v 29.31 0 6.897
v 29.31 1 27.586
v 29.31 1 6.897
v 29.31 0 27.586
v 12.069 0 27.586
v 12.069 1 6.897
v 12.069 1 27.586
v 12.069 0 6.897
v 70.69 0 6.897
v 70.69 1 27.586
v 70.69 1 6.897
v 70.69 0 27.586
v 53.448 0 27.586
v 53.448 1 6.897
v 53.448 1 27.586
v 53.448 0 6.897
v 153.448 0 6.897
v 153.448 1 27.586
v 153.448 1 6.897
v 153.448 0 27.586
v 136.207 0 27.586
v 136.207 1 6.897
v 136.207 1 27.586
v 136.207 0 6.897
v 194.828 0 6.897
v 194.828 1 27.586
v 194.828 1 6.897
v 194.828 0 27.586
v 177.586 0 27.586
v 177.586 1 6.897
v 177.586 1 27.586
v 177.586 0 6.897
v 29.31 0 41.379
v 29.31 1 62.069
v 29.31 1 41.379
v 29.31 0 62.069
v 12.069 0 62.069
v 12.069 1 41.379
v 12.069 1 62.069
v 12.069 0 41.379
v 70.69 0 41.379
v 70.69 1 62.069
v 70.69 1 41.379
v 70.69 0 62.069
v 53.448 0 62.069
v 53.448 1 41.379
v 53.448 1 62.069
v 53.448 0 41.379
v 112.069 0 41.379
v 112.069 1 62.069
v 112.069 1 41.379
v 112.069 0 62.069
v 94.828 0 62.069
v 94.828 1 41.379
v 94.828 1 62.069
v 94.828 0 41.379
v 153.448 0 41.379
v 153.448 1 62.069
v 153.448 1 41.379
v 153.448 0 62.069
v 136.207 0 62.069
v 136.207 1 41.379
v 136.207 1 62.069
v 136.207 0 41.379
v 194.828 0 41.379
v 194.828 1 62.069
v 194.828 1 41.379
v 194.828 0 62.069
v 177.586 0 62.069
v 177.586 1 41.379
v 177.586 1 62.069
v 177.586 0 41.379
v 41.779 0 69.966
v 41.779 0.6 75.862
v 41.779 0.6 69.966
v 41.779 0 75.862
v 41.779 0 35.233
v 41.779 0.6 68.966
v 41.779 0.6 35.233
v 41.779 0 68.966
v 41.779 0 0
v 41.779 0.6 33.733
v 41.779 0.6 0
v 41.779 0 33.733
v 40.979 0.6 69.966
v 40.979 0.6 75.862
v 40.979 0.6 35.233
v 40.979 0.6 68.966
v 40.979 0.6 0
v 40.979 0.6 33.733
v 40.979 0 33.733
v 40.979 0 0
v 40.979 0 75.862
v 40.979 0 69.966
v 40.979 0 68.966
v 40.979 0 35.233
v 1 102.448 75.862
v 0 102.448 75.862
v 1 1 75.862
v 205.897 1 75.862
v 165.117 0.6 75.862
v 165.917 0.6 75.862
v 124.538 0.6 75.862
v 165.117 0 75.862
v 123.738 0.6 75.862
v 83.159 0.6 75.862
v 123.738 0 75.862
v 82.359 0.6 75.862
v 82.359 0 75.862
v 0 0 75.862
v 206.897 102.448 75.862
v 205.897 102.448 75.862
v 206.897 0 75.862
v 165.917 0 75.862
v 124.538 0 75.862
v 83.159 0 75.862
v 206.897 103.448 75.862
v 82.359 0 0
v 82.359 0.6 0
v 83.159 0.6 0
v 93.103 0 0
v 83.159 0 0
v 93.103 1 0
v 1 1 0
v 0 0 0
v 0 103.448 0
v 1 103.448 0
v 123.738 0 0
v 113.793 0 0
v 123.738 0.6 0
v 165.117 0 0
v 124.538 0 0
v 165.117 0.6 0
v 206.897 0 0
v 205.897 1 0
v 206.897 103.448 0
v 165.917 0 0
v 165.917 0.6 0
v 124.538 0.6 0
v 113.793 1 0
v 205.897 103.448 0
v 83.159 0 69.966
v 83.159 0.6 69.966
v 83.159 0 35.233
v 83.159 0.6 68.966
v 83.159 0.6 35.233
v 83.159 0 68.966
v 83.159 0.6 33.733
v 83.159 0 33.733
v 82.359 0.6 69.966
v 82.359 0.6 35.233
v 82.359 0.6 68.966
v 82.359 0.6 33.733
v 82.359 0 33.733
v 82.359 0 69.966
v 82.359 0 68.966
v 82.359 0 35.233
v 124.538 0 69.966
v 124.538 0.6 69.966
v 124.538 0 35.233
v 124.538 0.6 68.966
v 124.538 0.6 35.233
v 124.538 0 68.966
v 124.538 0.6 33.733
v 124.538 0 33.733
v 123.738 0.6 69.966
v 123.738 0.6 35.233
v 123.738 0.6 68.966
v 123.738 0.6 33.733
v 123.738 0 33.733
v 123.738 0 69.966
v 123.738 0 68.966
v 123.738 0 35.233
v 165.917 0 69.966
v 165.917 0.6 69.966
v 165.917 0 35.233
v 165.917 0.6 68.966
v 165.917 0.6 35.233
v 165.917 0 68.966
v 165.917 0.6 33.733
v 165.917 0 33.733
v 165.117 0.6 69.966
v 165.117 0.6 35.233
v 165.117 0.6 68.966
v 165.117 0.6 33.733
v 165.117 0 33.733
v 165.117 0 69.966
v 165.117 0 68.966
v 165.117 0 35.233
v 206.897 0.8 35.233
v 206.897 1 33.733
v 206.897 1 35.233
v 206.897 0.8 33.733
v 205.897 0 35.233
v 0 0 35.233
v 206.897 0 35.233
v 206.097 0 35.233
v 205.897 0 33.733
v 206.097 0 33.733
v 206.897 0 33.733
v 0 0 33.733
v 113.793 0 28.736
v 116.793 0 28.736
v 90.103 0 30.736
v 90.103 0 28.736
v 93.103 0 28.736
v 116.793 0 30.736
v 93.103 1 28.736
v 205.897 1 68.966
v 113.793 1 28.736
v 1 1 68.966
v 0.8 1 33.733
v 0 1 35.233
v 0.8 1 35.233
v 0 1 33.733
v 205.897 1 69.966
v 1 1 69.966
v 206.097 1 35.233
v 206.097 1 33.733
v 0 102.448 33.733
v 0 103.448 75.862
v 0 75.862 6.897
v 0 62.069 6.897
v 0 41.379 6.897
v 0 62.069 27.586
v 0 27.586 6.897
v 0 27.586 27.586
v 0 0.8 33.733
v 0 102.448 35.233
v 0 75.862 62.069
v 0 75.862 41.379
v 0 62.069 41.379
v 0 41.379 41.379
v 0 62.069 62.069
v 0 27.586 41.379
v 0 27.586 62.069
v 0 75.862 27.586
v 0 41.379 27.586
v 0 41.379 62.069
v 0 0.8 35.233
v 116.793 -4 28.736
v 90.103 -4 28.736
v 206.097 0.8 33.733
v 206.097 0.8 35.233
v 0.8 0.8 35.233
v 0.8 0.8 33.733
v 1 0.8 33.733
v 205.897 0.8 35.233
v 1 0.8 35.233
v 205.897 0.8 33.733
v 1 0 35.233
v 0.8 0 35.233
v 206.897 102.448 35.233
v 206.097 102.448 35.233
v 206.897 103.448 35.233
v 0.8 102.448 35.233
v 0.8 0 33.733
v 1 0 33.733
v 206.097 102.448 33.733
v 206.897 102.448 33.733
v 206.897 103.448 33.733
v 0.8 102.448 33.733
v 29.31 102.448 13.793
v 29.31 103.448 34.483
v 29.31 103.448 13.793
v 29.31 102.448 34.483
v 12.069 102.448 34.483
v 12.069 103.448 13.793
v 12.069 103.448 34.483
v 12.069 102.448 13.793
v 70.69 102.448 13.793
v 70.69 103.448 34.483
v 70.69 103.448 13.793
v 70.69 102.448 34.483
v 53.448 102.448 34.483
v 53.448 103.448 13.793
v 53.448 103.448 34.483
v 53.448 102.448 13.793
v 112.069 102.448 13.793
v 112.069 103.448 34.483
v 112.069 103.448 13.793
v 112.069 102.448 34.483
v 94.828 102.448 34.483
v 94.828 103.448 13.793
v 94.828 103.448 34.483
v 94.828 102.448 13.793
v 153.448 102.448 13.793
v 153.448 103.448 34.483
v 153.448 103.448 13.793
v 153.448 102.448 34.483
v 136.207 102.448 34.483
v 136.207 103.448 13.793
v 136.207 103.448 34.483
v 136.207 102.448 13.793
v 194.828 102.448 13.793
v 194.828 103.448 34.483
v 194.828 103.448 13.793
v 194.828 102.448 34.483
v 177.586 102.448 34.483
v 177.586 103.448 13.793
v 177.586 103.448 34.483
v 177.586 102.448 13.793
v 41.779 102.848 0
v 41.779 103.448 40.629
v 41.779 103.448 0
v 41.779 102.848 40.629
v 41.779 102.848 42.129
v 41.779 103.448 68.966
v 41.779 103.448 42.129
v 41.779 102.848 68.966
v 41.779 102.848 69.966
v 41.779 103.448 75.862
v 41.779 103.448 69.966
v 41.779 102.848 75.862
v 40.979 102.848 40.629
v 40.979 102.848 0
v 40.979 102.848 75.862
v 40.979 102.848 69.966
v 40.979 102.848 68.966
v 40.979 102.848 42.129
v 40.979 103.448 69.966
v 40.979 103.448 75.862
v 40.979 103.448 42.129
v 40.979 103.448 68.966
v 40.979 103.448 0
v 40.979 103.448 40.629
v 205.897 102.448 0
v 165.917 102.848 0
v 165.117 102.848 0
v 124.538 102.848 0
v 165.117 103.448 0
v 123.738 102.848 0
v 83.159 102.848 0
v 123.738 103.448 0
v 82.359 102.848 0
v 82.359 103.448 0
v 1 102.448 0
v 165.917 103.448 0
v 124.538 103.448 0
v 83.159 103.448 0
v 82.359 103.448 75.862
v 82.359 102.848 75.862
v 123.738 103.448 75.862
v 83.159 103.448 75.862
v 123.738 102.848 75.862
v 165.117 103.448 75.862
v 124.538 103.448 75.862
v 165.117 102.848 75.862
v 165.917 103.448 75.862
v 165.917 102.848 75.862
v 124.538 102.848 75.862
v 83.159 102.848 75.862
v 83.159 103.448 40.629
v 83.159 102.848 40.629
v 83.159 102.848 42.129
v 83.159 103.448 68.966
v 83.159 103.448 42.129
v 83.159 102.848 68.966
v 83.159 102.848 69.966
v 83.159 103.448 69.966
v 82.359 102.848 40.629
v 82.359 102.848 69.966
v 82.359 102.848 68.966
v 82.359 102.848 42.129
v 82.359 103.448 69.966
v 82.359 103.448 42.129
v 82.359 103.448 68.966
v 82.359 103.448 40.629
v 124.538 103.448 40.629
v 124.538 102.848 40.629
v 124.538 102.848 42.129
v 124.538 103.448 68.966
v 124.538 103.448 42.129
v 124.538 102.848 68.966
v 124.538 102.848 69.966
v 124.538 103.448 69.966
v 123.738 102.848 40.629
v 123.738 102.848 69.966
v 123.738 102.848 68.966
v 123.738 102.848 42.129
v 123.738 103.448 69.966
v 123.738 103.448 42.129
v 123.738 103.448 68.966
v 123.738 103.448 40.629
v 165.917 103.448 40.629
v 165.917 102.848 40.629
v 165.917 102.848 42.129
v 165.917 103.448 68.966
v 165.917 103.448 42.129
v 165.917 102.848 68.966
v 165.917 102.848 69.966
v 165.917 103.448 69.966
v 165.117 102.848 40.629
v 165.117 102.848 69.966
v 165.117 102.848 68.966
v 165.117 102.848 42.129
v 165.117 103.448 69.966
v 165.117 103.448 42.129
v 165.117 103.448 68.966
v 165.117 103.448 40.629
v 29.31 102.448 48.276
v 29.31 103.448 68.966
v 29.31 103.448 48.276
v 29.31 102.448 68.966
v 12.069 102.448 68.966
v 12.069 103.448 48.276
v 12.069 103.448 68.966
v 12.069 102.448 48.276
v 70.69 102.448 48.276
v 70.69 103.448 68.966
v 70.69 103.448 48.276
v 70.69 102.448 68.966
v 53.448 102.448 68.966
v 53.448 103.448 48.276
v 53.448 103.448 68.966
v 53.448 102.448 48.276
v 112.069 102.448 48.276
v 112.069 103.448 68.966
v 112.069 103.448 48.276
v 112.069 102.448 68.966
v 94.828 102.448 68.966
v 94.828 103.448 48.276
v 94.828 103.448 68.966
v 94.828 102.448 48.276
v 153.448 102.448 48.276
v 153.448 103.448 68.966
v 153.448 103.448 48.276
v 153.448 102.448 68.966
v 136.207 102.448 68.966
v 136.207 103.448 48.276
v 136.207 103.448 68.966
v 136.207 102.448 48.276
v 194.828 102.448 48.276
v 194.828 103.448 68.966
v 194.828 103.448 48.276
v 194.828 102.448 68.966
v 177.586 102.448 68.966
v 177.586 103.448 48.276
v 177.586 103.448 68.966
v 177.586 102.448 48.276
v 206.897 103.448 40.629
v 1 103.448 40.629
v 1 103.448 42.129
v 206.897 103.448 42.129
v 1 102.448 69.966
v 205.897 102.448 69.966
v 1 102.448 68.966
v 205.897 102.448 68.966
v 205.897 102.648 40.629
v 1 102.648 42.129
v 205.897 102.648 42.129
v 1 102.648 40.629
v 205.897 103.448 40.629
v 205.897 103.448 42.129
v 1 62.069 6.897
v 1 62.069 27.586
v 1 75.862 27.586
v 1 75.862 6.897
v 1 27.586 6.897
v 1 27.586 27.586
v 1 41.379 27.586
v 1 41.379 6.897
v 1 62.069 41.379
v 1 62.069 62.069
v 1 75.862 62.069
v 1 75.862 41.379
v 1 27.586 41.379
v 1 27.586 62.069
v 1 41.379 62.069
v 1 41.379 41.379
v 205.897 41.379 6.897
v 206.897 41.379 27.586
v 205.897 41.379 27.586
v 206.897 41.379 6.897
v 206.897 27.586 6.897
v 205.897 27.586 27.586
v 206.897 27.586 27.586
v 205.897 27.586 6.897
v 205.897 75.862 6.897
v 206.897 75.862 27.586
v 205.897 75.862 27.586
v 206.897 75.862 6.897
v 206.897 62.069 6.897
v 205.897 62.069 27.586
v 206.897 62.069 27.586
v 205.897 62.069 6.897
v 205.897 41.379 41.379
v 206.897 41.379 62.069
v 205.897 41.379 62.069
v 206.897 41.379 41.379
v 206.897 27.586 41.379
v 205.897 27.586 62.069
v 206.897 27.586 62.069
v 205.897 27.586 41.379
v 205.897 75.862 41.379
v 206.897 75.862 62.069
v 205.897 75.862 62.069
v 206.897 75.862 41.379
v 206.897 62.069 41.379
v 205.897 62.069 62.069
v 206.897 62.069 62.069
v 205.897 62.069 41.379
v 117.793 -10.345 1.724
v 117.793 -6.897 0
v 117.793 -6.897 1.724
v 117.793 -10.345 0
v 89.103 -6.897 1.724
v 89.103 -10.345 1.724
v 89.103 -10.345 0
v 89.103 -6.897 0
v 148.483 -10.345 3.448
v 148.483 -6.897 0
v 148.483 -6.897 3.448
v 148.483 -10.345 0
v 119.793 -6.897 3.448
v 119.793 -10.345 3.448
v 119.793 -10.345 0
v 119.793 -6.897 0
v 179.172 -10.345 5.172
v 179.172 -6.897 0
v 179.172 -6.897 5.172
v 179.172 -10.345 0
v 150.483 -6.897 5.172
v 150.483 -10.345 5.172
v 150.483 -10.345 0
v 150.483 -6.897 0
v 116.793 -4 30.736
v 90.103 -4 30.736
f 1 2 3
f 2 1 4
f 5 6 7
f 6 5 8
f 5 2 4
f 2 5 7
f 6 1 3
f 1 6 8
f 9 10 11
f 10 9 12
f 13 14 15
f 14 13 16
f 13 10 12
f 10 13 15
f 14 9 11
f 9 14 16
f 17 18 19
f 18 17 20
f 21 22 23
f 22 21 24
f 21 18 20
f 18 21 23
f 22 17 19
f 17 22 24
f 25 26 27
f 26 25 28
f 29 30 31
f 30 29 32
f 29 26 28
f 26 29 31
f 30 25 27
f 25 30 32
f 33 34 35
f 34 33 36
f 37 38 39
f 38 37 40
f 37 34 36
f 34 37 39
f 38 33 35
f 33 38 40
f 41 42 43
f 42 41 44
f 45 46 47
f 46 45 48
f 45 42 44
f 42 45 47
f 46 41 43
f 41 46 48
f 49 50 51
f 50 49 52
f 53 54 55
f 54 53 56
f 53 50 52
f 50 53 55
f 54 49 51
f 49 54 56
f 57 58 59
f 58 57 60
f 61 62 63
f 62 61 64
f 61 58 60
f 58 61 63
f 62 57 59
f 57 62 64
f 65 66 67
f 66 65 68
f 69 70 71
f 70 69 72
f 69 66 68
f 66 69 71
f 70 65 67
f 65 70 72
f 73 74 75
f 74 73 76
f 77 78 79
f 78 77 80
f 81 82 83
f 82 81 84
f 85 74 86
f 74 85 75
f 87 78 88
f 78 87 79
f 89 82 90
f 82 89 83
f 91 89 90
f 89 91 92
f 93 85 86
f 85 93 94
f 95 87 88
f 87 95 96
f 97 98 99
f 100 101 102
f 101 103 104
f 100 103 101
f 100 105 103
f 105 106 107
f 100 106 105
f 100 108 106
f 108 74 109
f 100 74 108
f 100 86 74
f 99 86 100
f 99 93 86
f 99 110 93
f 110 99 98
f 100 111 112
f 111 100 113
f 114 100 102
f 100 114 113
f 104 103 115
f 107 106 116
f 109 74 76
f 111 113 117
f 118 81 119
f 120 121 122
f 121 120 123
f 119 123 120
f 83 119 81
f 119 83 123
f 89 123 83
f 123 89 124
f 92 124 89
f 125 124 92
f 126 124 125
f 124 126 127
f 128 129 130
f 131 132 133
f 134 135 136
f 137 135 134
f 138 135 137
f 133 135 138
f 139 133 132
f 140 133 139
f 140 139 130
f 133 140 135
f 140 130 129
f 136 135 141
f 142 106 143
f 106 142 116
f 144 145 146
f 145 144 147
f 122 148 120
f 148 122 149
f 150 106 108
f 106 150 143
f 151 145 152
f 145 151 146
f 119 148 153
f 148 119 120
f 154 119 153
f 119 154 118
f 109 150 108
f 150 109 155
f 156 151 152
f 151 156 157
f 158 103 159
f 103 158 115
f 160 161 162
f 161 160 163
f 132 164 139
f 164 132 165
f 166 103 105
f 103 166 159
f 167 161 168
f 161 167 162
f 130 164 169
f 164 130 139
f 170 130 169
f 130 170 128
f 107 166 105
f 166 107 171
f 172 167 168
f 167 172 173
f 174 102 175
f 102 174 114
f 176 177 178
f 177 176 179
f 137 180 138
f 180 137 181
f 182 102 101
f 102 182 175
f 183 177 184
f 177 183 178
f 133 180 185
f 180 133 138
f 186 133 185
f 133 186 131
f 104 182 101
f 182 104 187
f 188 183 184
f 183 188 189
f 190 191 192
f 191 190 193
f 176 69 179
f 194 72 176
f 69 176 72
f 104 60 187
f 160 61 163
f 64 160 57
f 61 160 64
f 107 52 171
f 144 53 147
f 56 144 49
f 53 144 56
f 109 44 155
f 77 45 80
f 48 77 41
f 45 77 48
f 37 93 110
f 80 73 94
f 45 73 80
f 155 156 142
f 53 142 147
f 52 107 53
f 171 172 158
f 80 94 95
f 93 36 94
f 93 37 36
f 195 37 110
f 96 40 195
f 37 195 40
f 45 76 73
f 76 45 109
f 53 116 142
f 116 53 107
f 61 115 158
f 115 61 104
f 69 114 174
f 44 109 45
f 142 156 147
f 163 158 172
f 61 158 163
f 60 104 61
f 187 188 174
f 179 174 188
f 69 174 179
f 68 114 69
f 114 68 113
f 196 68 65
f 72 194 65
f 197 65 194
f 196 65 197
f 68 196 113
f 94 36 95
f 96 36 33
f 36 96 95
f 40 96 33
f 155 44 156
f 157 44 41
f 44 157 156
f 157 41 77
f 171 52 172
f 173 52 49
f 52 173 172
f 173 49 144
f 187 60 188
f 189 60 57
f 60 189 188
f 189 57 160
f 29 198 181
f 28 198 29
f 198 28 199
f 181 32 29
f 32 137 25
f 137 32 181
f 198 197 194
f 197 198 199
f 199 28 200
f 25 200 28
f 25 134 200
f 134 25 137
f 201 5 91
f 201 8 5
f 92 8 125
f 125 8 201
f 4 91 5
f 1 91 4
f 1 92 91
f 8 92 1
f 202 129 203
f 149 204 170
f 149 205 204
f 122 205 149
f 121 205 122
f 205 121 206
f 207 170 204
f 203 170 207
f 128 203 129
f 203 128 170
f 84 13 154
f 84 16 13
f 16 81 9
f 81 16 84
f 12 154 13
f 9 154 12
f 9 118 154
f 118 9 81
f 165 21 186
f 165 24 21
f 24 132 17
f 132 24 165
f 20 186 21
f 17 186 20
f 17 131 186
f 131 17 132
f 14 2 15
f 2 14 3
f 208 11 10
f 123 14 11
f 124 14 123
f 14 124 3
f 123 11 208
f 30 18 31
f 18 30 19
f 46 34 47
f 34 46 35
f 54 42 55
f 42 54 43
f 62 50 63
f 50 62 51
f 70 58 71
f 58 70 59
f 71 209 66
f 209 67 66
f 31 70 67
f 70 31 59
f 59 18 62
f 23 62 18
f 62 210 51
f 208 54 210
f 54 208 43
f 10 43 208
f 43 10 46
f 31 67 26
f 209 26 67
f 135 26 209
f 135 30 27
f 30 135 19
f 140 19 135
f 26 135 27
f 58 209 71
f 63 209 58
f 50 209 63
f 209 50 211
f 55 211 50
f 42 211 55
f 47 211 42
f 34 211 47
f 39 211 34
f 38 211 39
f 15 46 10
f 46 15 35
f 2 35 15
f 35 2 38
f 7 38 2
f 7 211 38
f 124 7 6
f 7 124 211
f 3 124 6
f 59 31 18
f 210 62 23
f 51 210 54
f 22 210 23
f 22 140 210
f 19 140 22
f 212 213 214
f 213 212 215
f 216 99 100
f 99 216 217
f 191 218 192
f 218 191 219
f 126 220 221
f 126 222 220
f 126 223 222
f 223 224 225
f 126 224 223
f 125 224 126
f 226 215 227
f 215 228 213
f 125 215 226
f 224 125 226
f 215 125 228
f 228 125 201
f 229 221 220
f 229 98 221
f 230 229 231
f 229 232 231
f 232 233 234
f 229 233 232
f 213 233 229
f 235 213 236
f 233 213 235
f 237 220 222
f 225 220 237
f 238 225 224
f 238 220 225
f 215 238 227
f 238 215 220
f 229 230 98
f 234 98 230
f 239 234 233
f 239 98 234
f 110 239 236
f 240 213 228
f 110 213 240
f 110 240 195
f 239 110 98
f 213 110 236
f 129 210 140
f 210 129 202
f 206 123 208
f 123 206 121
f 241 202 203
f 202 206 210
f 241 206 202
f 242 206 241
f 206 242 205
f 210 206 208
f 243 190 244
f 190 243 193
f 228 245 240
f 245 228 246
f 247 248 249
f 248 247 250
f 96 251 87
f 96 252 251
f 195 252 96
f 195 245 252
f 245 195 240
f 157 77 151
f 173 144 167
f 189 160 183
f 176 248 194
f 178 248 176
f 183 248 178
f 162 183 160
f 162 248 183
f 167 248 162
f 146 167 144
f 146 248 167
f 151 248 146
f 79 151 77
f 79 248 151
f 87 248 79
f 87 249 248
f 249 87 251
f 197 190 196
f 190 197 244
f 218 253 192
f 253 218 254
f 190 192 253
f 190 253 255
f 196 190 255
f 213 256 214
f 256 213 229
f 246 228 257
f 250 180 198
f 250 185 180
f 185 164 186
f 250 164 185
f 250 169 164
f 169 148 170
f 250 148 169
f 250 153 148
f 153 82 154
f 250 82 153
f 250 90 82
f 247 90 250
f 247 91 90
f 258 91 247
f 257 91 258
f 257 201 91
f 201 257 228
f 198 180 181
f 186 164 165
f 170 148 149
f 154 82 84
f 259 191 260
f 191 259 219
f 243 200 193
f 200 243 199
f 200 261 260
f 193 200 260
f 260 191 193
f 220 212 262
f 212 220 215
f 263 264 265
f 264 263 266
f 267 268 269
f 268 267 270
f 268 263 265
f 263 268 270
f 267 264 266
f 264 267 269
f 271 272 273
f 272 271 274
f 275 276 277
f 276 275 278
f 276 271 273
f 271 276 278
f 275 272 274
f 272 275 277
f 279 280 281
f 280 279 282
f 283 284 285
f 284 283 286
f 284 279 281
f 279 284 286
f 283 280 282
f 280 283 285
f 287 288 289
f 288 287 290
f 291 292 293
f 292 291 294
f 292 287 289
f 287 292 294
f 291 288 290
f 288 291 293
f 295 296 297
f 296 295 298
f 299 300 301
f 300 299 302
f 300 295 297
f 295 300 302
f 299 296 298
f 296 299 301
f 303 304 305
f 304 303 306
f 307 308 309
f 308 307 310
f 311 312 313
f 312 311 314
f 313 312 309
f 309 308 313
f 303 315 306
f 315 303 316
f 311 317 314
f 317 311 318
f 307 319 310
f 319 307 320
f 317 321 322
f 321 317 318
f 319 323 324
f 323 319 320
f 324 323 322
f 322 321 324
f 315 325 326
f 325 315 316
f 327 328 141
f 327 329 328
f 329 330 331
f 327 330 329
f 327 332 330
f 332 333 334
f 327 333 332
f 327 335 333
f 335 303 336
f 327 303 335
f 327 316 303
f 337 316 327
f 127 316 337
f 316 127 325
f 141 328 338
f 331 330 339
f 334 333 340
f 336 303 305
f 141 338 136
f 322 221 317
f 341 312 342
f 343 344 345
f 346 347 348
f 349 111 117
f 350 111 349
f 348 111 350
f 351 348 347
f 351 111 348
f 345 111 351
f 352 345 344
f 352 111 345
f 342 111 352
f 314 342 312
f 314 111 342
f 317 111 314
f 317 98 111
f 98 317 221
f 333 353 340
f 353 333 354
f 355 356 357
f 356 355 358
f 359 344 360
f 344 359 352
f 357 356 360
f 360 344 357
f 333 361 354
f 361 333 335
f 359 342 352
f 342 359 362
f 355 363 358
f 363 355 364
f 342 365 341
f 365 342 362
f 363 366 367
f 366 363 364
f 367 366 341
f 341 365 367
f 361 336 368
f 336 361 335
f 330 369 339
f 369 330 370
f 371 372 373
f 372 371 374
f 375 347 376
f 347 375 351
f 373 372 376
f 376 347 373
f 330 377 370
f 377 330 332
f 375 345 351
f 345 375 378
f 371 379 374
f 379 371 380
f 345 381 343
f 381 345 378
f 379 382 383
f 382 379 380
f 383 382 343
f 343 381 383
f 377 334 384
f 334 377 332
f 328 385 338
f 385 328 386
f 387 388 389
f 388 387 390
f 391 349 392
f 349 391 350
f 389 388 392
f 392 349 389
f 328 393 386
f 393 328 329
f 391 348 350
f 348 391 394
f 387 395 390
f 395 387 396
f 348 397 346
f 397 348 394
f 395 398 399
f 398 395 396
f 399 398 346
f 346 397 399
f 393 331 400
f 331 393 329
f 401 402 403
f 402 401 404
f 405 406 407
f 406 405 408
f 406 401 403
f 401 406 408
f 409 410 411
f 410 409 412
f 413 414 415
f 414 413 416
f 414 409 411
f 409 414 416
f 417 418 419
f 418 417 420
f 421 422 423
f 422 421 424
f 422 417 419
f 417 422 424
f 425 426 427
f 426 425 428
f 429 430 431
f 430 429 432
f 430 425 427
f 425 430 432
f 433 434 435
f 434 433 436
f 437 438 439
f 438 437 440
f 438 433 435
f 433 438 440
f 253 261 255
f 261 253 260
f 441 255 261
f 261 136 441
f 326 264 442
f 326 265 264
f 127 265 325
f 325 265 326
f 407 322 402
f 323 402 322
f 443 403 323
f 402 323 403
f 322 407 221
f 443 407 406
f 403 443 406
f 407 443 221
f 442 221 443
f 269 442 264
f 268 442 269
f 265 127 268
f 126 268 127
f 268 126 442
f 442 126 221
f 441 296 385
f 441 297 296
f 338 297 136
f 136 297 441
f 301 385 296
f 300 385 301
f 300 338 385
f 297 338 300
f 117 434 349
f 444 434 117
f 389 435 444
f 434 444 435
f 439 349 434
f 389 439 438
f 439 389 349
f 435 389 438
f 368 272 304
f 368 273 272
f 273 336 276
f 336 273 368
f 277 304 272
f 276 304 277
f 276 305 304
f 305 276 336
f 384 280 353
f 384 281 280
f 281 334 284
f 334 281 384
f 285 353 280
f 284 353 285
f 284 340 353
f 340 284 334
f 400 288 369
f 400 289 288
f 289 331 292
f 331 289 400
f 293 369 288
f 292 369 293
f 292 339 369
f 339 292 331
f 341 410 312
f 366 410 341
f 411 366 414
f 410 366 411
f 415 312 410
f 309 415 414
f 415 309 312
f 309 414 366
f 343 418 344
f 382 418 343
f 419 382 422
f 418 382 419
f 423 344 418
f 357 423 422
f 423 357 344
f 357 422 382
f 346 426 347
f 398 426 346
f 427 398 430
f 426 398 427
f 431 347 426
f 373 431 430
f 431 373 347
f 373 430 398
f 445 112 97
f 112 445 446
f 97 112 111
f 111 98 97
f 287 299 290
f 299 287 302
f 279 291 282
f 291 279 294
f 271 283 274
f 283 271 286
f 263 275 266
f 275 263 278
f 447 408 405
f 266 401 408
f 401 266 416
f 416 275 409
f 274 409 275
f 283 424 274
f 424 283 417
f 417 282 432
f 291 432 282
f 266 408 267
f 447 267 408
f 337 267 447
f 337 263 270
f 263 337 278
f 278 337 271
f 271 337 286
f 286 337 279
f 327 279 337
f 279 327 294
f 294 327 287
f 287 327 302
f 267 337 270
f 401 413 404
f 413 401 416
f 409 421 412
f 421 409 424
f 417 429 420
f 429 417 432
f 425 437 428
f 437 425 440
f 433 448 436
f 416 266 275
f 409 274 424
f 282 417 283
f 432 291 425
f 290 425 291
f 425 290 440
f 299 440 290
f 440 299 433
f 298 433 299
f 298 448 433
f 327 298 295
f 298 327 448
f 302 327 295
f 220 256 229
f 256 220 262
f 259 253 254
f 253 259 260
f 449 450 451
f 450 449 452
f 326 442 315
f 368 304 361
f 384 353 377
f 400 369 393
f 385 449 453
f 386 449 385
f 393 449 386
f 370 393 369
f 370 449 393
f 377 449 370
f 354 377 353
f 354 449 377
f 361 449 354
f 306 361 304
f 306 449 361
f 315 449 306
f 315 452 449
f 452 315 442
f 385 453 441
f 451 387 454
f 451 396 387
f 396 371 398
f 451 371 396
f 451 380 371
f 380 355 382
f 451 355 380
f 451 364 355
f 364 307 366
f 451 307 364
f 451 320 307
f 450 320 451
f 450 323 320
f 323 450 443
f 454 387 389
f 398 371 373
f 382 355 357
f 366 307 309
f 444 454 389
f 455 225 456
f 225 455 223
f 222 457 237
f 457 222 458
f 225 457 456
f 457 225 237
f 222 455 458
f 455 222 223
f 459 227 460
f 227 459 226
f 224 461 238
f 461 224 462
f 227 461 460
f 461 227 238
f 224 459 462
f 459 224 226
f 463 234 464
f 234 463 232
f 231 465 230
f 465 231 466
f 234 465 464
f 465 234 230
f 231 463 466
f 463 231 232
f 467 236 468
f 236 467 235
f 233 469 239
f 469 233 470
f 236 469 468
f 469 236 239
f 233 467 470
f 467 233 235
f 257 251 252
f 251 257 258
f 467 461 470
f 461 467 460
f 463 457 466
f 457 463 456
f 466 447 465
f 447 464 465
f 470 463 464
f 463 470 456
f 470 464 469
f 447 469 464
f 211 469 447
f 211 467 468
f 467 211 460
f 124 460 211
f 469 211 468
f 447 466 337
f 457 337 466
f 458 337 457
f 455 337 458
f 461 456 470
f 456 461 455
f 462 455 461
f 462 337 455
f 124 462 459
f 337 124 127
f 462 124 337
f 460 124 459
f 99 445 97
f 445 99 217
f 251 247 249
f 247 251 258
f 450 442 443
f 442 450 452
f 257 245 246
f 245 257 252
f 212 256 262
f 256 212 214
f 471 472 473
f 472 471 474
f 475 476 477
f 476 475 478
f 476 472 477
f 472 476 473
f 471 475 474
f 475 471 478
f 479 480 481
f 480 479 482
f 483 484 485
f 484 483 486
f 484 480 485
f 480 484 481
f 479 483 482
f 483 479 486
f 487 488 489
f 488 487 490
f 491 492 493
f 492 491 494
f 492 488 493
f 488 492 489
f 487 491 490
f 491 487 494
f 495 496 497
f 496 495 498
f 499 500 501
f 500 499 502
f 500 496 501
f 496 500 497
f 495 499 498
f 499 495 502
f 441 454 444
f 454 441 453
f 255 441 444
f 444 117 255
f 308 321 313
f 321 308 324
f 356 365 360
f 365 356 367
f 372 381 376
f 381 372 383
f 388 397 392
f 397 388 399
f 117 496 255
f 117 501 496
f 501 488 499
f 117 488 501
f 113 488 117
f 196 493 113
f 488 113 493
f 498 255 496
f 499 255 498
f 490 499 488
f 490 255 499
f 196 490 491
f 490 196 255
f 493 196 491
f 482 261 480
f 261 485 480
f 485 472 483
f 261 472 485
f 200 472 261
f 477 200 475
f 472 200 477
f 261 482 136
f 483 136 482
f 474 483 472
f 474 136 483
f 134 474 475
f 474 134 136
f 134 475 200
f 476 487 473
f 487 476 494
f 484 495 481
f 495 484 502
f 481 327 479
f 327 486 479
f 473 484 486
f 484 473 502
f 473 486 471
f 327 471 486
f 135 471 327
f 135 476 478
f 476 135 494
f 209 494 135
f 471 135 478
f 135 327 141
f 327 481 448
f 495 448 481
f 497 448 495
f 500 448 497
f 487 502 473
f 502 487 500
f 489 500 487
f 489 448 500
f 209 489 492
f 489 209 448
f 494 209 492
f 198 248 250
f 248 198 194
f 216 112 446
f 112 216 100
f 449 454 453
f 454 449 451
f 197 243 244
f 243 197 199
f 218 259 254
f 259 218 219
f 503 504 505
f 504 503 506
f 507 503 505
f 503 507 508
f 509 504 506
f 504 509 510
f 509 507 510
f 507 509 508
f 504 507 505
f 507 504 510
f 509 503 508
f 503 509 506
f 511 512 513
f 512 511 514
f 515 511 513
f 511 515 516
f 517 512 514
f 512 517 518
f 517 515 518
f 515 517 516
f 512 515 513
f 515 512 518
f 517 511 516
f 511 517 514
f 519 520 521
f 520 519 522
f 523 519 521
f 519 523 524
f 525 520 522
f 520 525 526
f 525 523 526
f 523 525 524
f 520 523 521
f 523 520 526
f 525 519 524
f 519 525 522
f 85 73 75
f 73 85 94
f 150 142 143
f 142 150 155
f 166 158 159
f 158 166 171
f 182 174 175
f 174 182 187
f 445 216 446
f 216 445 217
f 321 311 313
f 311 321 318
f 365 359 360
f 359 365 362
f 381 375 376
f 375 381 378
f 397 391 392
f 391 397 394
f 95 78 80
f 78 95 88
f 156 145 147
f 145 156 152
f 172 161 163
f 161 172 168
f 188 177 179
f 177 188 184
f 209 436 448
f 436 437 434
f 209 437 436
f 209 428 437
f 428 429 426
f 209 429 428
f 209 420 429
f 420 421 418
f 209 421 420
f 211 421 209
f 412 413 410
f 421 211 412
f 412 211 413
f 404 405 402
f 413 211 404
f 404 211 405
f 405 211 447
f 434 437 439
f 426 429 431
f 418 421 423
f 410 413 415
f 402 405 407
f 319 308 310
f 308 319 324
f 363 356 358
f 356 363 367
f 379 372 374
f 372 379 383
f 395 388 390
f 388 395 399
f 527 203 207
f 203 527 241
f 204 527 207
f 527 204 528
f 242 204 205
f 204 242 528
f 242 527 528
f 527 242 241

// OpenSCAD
// file: police_station_steps.scad
/*
 * PROMPT: H0 scale (1:87) PRL-era police station entrance steps, flat print layout.
 * Three concrete step slabs laid side by side with 2 mm gaps for printing.
 * Step 0 is thinnest (one riser height), step 2 is thickest (three riser heights).
 */

$fn = 32;

S       = 1/87;

door_w  = 1800*S;    //  20.7 mm
step_h  = 150*S;     //   1.7 mm
step_d  = 300*S;     //   3.4 mm

sw      = door_w + 8; // step width = 28.7 mm

module steps() {
    for (i = [0:2]) {
        translate([i*(sw+2), 0, 0])
            cube([sw, step_d, (i+1)*step_h]);
    }
}

steps();
// file: police_station_roof.scad
/*
 * PROMPT: H0 scale (1:87) PRL-era police station flat roof panel, plain slab.
 * Parapet is integrated into the wall panels; roof is a plain flat rectangle.
 */

$fn = 32;

S       = 1/87;
panel_t = 1.0;

bld_w   = 18000*S;   // 206.9 mm
bld_d   = 9000*S;    // 103.4 mm

module roof_panel() {
    cube([bld_w, bld_d, panel_t]);
}

roof_panel();
// file: police_station_wall_side.scad
/*
 * PROMPT: H0 scale (1:87) PRL-era police station side wall panel, flat for FDM printing.
 * Two windows per floor at 1/3 and 2/3 of building depth.
 * Horizontal cornice groove at floor line. Used for both left and right sides (identical).
 */

$fn = 32;

S          = 1/87;
panel_t    = 1.0;

bld_d      = 9000*S;    // 103.4 mm
floor_h    = 3000*S;    //  34.5 mm
bld_h      = 2*floor_h; //  69.0 mm
parapet_h  = 600*S;     //   6.9 mm
wall_panel_h = bld_h + parapet_h; // 75.9 mm

side_win_w = 1200*S;    // 13.8 mm
side_win_h = 1800*S;    // 20.7 mm

cornice_w  = 1.5;
cornice_d  = 0.8;

module wall_side() {
    difference() {
        // Base slab, exterior face at Z = panel_t (face up)
        cube([bld_d, wall_panel_h, panel_t]);

        // --- Windows: 2 per floor, at 1/3 and 2/3 depth ---
        for (f = [0:1]) {
            for (pos = [1/3, 2/3]) {
                wx = pos*bld_d - side_win_w/2;
                wy = f*floor_h + (floor_h - side_win_h)/2;
                translate([wx, wy, -1])
                    cube([side_win_w, side_win_h, panel_t+2]);
            }
        }

        // --- Horizontal cornice groove at floor line ---
        cy = floor_h - cornice_w/2;
        translate([0, cy, panel_t - cornice_d])
            cube([bld_d, cornice_w, cornice_d+1]);
    }
}

wall_side();
// file: police_station_wall_back.scad
/*
 * PROMPT: H0 scale (1:87) PRL-era police station back wall panel, flat for FDM printing.
 * Five bays, windows in all five bays on both floors (no door).
 * Horizontal cornice groove at floor line, vertical panel-joint grooves at bay boundaries.
 */

$fn = 32;

S          = 1/87;
panel_t    = 1.0;

bld_w      = 18000*S;   // 206.9 mm
floor_h    = 3000*S;    //  34.5 mm
bld_h      = 2*floor_h; //  69.0 mm
parapet_h  = 600*S;     //   6.9 mm
wall_panel_h = bld_h + parapet_h; // 75.9 mm

n_bays     = 5;
bay_w      = bld_w / n_bays;  // 41.4 mm

win_w      = 1500*S;    // 17.2 mm
win_h      = 1800*S;    // 20.7 mm

cornice_w  = 1.5;
cornice_d  = 0.8;
groove_w   = 0.8;
groove_d   = 0.6;

module wall_back() {
    difference() {
        // Base slab, exterior face at Z = panel_t (face up)
        cube([bld_w, wall_panel_h, panel_t]);

        // --- Windows: all 5 bays, both floors ---
        for (f = [0:1]) {
            for (b = [0:n_bays-1]) {
                wx = b*bay_w + (bay_w - win_w)/2;
                wy = f*floor_h + (floor_h - win_h)/2;
                translate([wx, wy, -1])
                    cube([win_w, win_h, panel_t+2]);
            }
        }

        // --- Vertical panel-joint grooves on exterior face ---
        for (b = [1:n_bays-1]) {
            gx = b*bay_w - groove_w/2;
            translate([gx, 0, panel_t - groove_d])
                cube([groove_w, wall_panel_h, groove_d+1]);
        }

        // --- Horizontal cornice groove at floor line ---
        cy = floor_h - cornice_w/2;
        translate([0, cy, panel_t - cornice_d])
            cube([bld_w, cornice_w, cornice_d+1]);
    }
}

wall_back();
// file: police_station_wall_front.scad
/*
 * PROMPT: H0 scale (1:87) PRL-era police station front wall panel, flat for FDM printing.
 * Five bays, ground floor has entrance door in centre bay (no window there),
 * upper floor has windows in all five bays. Horizontal cornice groove at
 * floor line, vertical panel-joint grooves at bay boundaries.
 */

$fn = 32;

S          = 1/87;
panel_t    = 1.0;

bld_w      = 18000*S;   // 206.9 mm
floor_h    = 3000*S;    //  34.5 mm
bld_h      = 2*floor_h; //  69.0 mm
parapet_h  = 600*S;     //   6.9 mm
wall_panel_h = bld_h + parapet_h; // 75.9 mm

n_bays     = 5;
bay_w      = bld_w / n_bays;  // 41.4 mm
center_bay = 2;

win_w      = 1500*S;    // 17.2 mm
win_h      = 1800*S;    // 20.7 mm
door_w     = 1800*S;    // 20.7 mm
door_h     = 2500*S;    // 28.7 mm

cornice_w  = 1.5;
cornice_d  = 0.8;
groove_w   = 0.8;
groove_d   = 0.6;

module wall_front() {
    difference() {
        // Base slab, exterior face at Z = panel_t (face up)
        cube([bld_w, wall_panel_h, panel_t]);

        // --- Windows ---
        // Ground floor: bays 0,1,3,4 (skip centre bay 2 — door there)
        for (b = [0:n_bays-1]) {
            if (b != center_bay) {
                wx = b*bay_w + (bay_w - win_w)/2;
                wy = 0*floor_h + (floor_h - win_h)/2;
                translate([wx, wy, -1])
                    cube([win_w, win_h, panel_t+2]);
            }
        }
        // Upper floor: all 5 bays
        for (b = [0:n_bays-1]) {
            wx = b*bay_w + (bay_w - win_w)/2;
            wy = 1*floor_h + (floor_h - win_h)/2;
            translate([wx, wy, -1])
                cube([win_w, win_h, panel_t+2]);
        }

        // --- Entrance door (centre bay, ground floor, through hole) ---
        dx = center_bay*bay_w + (bay_w - door_w)/2;
        translate([dx, 0, -1])
            cube([door_w, door_h, panel_t+2]);

        // --- Vertical panel-joint grooves on exterior face ---
        for (b = [1:n_bays-1]) {
            gx = b*bay_w - groove_w/2;
            translate([gx, 0, panel_t - groove_d])
                cube([groove_w, wall_panel_h, groove_d+1]);
        }

        // --- Horizontal cornice groove at floor line ---
        cy = floor_h - cornice_w/2;
        translate([0, cy, panel_t - cornice_d])
            cube([bld_w, cornice_w, cornice_d+1]);
    }
}

wall_front();
// main file
/*
 * PROMPT: H0 scale (1:87) PRL-era police station assembly for visualization.
 * Assembles front wall, back wall, two side walls, roof, entrance steps, and canopy
 * from the individual part files. Not intended for printing — visualization only.
 */

$fn = 32;

use <police_station_wall_front.scad>
use <police_station_wall_back.scad>
use <police_station_wall_side.scad>
use <police_station_roof.scad>
use <police_station_steps.scad>

S            = 1/87;
panel_t      = 1.0;

bld_w        = 18000*S;         // 206.9 mm
bld_d        = 9000*S;          // 103.4 mm
floor_h      = 3000*S;          //  34.5 mm
bld_h        = 2*floor_h;       //  69.0 mm
parapet_h    = 600*S;           //   6.9 mm
wall_panel_h = bld_h + parapet_h; // 75.9 mm

n_bays       = 5;
bay_w        = bld_w / n_bays;  //  41.4 mm
center_bay   = 2;

door_w       = 1800*S;          //  20.7 mm
door_h       = 2500*S;          //  28.7 mm

canopy_proj  = 4.0;
canopy_t     = 2.0;

n_steps      = 3;
step_h       = 150*S;           //   1.7 mm
step_d       = 300*S;           //   3.4 mm

// Front wall: panel lies in XZ plane, exterior face facing -Y
translate([0, panel_t, 0])
    rotate([90, 0, 0])
        wall_front();

// Back wall: panel lies in XZ plane, exterior face facing +Y
translate([0, bld_d - panel_t, wall_panel_h])
    rotate([-90, 0, 0])
        wall_back();

// Left wall: panel lies in YZ plane, exterior face facing -X
translate([panel_t, bld_d, 0])
    rotate([0, 0, -90])
        rotate([90, 0, 0])
            wall_side();

// Right wall: panel lies in YZ plane, exterior face facing +X
translate([bld_w - panel_t, 0, 0])
    rotate([0, 0, 90])
        rotate([90, 0, 0])
            wall_side();

// Roof: flat slab at top of walls (below parapet — parapet is part of wall panels)
translate([0, 0, bld_h])
    roof_panel();

// Steps in front of entrance door
translate([center_bay*bay_w + (bay_w - door_w)/2 - 4, -(n_steps*step_d), 0])
    steps();

// Canopy above entrance door (inline, no separate part file)
translate([center_bay*bay_w + (bay_w - door_w)/2 - 3, -canopy_proj, door_h])
    cube([door_w + 6, canopy_proj + panel_t, canopy_t]);
